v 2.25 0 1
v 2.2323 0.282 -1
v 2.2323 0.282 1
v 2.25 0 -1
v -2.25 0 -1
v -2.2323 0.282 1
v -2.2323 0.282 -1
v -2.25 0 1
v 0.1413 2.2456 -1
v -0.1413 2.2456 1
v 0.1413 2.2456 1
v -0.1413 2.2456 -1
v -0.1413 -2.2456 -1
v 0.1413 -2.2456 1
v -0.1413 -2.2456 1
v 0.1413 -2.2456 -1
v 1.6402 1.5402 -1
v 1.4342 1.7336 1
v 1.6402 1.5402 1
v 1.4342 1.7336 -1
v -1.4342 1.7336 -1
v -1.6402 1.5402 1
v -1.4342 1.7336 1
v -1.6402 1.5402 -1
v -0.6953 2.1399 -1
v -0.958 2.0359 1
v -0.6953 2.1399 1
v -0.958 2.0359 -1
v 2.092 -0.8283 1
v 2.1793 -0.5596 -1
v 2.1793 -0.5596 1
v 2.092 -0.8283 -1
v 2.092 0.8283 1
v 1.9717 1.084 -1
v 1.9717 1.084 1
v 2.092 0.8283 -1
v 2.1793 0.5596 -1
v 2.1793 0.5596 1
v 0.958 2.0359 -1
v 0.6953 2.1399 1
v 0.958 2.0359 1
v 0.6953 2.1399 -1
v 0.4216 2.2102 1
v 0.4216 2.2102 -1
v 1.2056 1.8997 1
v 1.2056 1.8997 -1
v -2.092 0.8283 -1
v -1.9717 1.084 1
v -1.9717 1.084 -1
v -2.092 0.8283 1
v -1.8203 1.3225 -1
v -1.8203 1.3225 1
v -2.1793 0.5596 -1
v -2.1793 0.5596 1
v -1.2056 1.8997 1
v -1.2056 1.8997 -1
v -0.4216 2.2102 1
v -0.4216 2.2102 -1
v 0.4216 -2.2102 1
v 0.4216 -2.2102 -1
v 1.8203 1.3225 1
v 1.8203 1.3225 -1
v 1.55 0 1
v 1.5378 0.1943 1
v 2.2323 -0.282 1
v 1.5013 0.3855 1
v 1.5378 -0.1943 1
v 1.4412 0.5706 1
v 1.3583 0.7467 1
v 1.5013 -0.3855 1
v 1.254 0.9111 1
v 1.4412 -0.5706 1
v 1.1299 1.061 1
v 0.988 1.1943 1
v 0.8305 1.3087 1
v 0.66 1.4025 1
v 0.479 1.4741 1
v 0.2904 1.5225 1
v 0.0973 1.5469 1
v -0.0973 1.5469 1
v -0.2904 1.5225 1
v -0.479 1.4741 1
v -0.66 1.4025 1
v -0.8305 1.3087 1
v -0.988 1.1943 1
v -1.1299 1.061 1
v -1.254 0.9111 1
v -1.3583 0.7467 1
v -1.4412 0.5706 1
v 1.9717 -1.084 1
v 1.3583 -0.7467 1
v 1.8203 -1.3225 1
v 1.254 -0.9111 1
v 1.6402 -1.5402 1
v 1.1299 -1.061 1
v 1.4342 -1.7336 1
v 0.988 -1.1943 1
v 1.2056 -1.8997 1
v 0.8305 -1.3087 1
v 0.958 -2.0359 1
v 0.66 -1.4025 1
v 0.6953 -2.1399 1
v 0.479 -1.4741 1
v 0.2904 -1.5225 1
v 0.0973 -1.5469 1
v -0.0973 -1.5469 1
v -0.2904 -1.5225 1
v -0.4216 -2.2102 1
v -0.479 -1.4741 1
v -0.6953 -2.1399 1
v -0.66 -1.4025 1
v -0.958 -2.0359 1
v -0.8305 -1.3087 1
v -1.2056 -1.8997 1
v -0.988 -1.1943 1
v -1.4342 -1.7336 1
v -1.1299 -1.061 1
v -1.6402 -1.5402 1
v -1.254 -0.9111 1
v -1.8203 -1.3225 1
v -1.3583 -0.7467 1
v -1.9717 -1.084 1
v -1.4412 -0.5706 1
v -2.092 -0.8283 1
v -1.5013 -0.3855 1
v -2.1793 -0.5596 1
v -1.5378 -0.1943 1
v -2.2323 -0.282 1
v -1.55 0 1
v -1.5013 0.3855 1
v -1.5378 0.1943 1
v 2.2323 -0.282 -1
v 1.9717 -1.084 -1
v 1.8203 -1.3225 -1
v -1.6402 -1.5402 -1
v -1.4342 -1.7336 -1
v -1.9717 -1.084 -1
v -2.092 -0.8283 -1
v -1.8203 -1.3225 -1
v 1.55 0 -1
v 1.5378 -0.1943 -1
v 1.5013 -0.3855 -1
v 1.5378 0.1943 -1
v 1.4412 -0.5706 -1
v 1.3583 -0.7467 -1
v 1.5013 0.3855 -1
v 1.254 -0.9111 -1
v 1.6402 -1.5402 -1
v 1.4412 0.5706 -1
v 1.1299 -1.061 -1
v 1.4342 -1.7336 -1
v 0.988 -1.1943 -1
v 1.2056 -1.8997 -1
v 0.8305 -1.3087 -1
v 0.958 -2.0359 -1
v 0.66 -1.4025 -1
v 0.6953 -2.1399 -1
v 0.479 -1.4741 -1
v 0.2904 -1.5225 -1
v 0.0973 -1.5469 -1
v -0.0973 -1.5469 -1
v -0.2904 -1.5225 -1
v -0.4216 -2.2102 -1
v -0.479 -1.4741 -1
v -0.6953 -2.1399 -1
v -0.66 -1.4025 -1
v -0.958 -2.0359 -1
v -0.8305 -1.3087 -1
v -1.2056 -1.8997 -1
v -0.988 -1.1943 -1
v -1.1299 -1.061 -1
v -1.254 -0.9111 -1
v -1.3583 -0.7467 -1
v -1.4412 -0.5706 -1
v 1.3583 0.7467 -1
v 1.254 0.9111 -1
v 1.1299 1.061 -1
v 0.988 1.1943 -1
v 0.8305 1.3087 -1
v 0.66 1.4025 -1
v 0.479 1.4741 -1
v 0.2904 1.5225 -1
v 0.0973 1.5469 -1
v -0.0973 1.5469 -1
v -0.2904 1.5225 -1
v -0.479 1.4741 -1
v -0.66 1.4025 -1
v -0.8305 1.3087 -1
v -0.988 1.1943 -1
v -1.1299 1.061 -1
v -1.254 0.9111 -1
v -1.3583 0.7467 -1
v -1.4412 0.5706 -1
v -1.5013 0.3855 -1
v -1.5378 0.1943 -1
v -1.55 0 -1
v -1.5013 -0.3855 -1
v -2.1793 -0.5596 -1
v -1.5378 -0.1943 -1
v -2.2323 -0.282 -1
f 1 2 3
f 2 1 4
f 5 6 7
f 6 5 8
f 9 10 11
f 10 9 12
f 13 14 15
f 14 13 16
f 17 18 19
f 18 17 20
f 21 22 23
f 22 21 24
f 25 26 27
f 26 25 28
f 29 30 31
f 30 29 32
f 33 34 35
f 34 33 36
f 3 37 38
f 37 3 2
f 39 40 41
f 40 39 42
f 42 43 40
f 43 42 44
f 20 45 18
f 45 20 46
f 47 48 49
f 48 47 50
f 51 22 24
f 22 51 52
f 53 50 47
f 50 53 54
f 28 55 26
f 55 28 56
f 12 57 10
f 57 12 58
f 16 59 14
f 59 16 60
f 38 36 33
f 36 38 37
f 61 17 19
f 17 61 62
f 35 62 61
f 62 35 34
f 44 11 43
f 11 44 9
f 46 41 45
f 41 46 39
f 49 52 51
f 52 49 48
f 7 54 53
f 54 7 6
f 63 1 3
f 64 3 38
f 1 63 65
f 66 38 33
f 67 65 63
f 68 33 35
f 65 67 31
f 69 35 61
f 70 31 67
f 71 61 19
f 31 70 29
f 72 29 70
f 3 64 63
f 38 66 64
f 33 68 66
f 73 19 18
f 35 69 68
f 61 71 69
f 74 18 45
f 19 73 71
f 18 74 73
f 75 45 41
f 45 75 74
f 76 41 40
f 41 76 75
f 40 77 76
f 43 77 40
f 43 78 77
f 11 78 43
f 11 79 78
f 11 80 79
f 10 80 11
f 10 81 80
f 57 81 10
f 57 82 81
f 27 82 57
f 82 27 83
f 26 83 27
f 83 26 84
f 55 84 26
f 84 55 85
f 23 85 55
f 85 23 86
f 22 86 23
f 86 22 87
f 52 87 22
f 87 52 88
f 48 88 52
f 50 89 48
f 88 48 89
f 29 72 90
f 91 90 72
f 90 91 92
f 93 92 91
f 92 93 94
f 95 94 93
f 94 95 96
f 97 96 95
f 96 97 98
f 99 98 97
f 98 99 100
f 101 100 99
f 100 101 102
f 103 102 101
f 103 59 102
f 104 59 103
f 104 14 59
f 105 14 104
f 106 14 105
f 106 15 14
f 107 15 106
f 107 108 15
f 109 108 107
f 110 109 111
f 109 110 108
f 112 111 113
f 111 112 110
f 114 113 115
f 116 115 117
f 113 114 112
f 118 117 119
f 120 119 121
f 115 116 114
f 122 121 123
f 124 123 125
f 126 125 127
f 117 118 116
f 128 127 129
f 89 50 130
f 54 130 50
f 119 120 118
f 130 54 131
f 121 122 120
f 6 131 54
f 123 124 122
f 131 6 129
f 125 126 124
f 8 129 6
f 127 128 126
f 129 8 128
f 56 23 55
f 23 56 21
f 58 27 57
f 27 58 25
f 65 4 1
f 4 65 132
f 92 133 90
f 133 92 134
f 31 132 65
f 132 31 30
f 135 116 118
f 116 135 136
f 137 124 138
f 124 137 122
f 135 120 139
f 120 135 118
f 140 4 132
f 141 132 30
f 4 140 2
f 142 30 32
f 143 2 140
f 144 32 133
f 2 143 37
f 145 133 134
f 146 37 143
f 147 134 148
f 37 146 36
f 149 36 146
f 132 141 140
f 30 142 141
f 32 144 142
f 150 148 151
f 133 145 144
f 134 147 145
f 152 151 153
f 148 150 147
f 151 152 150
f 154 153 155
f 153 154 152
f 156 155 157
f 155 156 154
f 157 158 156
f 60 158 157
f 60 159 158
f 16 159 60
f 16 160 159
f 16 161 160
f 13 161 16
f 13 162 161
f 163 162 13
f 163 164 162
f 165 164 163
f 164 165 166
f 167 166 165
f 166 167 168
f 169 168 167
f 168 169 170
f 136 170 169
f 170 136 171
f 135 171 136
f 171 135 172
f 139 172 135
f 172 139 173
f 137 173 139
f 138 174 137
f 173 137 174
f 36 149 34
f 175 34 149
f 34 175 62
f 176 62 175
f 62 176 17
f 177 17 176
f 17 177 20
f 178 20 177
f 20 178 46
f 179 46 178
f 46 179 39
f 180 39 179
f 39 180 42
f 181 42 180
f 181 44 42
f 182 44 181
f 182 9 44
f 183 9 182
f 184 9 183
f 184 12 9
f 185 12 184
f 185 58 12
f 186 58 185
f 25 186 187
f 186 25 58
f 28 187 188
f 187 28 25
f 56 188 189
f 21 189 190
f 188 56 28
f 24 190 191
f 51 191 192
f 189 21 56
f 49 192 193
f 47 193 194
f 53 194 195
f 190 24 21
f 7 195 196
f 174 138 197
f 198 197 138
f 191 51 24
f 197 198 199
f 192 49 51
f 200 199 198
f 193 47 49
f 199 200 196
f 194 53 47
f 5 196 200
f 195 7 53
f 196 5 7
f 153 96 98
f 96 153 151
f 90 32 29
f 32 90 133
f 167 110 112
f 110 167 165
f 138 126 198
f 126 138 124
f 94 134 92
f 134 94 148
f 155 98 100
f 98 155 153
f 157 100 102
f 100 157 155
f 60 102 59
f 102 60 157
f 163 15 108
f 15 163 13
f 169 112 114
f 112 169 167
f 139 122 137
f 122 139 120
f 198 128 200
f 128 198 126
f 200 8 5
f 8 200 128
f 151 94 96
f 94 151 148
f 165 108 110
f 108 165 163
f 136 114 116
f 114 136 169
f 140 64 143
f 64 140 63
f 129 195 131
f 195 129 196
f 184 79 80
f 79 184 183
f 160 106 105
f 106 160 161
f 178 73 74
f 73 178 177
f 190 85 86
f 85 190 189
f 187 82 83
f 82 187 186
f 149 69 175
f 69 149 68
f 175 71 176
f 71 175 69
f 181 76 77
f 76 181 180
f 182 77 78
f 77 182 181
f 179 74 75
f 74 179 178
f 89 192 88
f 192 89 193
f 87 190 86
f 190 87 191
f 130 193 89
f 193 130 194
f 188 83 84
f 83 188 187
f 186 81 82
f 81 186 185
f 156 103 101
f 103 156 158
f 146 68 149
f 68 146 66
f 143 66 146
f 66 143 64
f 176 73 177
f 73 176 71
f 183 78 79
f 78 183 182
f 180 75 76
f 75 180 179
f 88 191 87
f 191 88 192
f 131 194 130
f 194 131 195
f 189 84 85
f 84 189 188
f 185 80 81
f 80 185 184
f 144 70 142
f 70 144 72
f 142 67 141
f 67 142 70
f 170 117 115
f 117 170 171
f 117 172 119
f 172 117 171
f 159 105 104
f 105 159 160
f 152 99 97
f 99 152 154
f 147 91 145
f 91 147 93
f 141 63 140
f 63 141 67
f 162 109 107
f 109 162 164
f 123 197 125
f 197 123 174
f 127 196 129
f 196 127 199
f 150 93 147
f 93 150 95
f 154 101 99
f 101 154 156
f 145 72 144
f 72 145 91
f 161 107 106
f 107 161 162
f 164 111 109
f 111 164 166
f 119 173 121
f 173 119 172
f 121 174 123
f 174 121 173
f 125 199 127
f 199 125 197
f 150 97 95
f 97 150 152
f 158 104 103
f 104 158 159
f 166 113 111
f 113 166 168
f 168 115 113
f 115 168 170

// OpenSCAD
$fn = 50;


difference() {
	union() {
		translate(v = [0, 0, -1.0000000000]) {
			cylinder(h = 2, r = 2.2500000000);
		}
	}
	union() {
		translate(v = [0, 0, -100.0000000000]) {
			cylinder(h = 200, r = 1.5500000000);
		}
	}
}
